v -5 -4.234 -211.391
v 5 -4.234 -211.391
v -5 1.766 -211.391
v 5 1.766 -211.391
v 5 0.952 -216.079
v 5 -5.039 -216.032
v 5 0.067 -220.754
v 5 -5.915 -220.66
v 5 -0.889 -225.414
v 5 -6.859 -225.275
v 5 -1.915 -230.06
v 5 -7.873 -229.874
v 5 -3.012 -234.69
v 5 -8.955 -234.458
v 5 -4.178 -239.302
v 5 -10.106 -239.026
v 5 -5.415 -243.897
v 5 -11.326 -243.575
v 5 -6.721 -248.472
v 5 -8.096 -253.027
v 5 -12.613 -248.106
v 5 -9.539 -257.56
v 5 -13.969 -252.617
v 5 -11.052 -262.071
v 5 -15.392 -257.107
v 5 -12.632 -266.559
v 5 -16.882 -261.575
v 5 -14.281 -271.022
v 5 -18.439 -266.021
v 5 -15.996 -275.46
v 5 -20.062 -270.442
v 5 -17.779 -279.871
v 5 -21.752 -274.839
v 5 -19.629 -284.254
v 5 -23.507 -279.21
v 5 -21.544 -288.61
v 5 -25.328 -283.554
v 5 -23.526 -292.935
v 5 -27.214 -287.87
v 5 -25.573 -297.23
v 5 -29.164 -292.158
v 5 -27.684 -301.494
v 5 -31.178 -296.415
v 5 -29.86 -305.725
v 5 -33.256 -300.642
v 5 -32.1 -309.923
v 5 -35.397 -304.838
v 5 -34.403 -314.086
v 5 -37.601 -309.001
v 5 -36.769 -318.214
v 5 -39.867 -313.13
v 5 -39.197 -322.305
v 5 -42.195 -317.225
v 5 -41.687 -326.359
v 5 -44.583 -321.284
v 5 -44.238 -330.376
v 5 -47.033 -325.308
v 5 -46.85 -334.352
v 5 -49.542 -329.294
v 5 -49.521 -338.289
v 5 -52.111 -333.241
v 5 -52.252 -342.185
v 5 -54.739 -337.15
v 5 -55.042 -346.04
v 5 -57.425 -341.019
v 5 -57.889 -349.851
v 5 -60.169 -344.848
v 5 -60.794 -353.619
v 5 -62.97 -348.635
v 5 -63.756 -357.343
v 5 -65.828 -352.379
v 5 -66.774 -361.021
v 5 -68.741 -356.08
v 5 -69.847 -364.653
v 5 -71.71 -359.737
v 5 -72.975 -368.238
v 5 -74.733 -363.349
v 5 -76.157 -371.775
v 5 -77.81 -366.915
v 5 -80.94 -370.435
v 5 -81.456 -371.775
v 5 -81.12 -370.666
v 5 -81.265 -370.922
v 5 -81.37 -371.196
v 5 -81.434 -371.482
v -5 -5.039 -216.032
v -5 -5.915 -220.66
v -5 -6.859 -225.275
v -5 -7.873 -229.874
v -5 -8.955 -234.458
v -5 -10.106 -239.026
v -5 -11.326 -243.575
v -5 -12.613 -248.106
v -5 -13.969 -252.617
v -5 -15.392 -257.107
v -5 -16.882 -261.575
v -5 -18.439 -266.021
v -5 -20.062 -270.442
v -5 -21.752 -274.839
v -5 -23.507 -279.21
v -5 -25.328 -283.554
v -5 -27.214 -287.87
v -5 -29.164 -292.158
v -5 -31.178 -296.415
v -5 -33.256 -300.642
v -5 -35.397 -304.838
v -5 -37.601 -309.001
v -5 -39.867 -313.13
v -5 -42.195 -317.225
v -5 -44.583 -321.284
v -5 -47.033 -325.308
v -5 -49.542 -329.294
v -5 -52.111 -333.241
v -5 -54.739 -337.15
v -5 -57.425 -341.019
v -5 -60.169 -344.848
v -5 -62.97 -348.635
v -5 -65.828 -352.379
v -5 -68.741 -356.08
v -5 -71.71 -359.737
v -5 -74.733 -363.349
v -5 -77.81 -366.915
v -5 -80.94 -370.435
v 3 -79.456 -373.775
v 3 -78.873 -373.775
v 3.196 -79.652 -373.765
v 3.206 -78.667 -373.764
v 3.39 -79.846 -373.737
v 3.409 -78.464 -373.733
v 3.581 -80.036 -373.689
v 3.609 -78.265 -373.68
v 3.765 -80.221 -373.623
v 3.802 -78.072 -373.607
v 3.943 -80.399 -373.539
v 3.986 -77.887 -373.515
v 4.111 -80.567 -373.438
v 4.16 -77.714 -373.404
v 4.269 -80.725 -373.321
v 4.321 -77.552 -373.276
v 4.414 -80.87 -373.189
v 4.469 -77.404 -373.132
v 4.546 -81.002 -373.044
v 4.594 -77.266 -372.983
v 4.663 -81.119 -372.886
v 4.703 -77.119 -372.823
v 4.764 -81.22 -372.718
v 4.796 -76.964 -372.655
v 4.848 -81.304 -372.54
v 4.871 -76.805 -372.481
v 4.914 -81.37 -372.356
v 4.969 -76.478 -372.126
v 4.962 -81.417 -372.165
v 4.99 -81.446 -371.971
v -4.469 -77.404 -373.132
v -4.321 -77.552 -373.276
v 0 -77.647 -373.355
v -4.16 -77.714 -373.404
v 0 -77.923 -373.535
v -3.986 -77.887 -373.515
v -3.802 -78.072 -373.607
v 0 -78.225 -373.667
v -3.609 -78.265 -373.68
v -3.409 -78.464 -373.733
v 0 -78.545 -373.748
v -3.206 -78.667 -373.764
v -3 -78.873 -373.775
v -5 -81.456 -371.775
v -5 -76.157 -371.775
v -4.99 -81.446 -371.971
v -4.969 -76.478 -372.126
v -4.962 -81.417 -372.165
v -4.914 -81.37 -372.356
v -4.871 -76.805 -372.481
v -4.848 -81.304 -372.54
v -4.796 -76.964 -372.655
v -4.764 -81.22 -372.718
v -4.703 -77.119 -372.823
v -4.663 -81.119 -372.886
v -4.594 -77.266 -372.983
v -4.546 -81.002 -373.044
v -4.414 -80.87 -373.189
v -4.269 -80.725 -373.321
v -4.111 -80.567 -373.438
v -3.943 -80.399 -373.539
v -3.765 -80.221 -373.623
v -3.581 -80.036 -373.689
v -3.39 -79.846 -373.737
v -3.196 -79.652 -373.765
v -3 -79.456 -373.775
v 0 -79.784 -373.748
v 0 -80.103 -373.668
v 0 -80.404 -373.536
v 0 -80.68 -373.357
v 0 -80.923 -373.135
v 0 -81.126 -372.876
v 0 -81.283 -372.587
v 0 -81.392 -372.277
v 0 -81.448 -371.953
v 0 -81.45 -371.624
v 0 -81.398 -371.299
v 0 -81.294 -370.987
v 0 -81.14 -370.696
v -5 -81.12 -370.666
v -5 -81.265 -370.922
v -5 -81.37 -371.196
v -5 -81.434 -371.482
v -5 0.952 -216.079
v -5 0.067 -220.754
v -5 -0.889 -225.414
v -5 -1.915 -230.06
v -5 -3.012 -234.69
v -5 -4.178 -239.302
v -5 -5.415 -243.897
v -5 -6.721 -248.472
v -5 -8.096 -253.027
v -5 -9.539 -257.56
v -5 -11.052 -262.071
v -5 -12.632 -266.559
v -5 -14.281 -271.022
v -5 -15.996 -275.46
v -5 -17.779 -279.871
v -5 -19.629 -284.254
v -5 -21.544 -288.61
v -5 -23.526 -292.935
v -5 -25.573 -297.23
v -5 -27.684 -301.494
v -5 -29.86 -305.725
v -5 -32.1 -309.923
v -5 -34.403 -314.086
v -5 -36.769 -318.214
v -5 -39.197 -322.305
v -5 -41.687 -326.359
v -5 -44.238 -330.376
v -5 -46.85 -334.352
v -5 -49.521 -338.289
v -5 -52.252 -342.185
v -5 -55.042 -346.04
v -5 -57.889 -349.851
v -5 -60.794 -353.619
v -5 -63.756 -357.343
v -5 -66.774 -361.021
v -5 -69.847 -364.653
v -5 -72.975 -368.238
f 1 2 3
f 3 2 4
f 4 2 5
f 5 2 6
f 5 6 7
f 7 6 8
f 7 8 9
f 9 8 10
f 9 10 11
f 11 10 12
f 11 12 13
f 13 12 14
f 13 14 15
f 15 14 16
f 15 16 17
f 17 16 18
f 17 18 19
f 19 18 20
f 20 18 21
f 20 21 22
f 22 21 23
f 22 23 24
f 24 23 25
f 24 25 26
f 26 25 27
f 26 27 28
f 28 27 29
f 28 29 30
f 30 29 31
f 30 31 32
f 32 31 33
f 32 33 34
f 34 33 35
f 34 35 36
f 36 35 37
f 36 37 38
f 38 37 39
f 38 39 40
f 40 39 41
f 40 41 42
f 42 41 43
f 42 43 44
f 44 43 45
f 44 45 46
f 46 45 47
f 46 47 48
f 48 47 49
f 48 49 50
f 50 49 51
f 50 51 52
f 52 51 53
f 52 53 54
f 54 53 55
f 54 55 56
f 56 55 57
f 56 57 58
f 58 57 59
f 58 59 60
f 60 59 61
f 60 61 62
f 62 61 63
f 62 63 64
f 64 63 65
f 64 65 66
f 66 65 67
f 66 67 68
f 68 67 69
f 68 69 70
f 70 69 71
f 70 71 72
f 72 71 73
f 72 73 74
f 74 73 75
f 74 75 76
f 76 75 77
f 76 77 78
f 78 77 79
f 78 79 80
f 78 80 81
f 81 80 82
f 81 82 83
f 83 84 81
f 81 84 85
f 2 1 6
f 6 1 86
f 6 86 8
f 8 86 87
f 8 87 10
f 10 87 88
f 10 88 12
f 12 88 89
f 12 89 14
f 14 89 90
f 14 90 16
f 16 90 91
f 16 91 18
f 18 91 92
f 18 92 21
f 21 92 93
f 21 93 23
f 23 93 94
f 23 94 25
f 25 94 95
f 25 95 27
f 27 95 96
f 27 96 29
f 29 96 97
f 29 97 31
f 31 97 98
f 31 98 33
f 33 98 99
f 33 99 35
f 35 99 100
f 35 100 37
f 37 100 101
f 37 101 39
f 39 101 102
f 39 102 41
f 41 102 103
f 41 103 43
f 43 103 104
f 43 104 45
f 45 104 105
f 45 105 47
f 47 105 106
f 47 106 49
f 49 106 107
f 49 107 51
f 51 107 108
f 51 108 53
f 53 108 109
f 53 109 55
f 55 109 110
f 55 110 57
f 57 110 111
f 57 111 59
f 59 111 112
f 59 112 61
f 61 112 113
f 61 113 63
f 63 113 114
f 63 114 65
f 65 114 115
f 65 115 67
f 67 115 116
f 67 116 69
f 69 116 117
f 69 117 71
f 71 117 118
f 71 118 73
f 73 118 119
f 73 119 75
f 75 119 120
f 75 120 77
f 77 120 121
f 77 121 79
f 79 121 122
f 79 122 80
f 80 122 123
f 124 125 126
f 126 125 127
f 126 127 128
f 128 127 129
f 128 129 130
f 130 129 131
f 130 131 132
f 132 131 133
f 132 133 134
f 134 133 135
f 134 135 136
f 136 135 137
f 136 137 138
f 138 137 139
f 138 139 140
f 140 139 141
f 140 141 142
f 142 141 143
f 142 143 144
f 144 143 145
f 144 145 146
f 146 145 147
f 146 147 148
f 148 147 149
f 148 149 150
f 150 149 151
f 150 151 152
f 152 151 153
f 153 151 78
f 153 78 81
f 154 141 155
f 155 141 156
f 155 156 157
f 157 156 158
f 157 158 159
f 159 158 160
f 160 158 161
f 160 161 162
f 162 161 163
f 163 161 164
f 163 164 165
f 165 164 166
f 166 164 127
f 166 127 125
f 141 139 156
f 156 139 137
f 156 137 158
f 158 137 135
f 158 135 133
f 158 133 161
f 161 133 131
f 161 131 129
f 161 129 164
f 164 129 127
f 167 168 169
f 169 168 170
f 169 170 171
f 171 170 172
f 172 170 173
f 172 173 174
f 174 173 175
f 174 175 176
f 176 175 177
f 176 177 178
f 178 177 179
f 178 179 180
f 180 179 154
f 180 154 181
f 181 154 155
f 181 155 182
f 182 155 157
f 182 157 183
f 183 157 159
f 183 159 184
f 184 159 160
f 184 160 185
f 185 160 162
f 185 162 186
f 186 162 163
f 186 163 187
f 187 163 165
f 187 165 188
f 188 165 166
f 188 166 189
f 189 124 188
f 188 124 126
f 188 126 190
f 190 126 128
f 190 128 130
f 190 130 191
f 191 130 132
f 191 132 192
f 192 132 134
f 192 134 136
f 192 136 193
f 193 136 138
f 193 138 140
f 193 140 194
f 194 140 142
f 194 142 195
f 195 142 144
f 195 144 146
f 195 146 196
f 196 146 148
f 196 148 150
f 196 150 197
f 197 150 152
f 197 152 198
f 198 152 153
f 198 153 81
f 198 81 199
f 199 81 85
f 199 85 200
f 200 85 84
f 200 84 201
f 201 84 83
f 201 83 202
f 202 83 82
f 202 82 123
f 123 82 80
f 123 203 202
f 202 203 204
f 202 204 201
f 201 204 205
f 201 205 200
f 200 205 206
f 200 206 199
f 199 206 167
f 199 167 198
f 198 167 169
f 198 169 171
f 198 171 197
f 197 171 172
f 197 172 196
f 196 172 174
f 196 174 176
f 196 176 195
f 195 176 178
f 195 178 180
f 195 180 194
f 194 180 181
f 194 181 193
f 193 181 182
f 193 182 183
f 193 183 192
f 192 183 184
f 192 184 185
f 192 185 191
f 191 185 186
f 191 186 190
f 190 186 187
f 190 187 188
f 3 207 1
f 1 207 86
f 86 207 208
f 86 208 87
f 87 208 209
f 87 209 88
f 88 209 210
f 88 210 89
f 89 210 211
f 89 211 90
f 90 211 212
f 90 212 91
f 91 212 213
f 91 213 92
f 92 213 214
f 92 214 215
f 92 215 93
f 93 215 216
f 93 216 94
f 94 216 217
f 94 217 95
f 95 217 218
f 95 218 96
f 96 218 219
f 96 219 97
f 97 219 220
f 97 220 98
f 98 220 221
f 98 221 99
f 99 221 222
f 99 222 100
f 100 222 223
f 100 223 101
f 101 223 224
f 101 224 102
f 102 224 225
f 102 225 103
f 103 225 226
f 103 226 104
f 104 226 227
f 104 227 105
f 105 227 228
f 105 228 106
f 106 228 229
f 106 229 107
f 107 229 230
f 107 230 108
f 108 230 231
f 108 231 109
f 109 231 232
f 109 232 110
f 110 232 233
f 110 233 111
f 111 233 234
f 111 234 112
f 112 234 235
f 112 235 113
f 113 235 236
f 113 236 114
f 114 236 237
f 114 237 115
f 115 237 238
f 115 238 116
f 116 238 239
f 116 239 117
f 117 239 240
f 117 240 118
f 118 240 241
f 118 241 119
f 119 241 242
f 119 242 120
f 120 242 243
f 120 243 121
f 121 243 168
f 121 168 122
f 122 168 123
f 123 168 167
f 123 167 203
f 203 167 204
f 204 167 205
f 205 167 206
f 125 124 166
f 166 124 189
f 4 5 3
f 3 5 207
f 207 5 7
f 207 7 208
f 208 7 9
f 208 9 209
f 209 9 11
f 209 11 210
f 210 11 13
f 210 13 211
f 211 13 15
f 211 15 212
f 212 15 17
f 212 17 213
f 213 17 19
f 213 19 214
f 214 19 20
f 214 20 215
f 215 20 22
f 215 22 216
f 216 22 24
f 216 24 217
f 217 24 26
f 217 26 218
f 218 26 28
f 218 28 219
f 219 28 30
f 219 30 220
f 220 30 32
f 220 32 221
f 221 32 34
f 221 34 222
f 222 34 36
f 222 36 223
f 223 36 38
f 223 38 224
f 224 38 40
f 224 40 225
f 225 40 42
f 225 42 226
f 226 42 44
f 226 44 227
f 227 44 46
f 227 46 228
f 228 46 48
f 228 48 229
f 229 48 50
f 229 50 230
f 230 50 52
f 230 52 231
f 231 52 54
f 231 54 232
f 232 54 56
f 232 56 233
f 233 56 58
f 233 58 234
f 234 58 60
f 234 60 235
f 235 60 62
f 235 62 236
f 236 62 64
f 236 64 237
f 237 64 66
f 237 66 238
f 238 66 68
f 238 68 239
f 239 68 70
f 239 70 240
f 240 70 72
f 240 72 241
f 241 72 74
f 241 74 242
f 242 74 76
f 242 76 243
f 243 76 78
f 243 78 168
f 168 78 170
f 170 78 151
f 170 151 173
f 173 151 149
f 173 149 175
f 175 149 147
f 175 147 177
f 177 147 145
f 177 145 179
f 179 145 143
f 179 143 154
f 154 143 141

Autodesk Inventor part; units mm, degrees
ref_plane "YZ Plane" through (0, 0, 0) normal (1, 0, 0) x (0, 1, 0)
ref_plane "XZ Plane" through (0, 0, 0) normal (0, 1, 0) x (-1, 0, 0)
ref_plane "XY Plane" through (0, 0, 0) normal (0, 0, 1) x (1, 0, 0)
sketch "Sketch1" plane through (0, 0, 0) normal (0, 1, 0) x (-1, 0, 0)
  line L0 (0, 0) -> (0, -160) construction
  line L1 (5, 0) -> (5, -160)
  line L2 (-5, -160) -> (-5, 0)
  arc A0 (5, 0) -> (-5, 0) centre (0, 0) ccw
  arc A1 (-5, -160) -> (5, -160) centre (0, -160) ccw
  circle A2 centre (0, 0) radius 1.65
  line L3 (0, -30) -> (0, -120) construction
  line L4 (1.65, -30) -> (1.65, -120)
  line L5 (-1.65, -120) -> (-1.65, -30)
  arc A3 (1.65, -30) -> (-1.65, -30) centre (0, -30) ccw
  arc A4 (-1.65, -120) -> (1.65, -120) centre (0, -120) ccw
  point P0 (0, -80)
  point P1 (0, -75)
  dimension "d0" = 160
  dimension "d1" = 10
  dimension "d2" = 3.3
  dimension "d3" = 30
  dimension "d5" = 120
  dimension "d6" = 3.3
extrude "Extrusion1" add sketch "Sketch1" along normal blind 6
sketch "Sketch2" plane through (5, 0, 0) normal (1, 0, 0) x (0, 0, -1)
  line L0 (160, 0) -> (160, 6) projected
  line L1 (0, 0) -> (160, 0) projected
  line L2 (160, 0) -> (160, 6) projected
  line L3 (0, 6) -> (160, 6) projected
  line L4 (0, 0) -> (0, 6) projected
  line L5 (160, 0) -> (160, 0) projected
  line L6 (160, 0) -> (160, 6) projected
  line L7 (160, 6) -> (160, 6) projected
  line L8 (160, 0) -> (160, 6) projected
  line L9 (160, 0) -> (0, 0) projected
  arc A0 (373.775, -84) -> (160, 0) centre (160, -314.0223) ccw
  line L10 (160, 6) -> (0, 6) projected
  arc A1 (373.775, -78) -> (160, 6) centre (160, -308.0223) ccw
  line L11 (373.775, -78) -> (373.775, -84)
  line L12 (0, 0) -> (160, 0) projected
  dimension "d9" = 6
  dimension "d10" = 373.775
  dimension "d11" = 90
extrude "Extrusion2" add sketch "Sketch2" against normal blind 10 contours L0 A1 L11 A0
fillet "Fillet1" radius 2 4 edges at (0, -78, -373.775) (5, -81, -373.775) (-5, -81, -373.775) (0, -84, -373.775)
sketch "Sketch3" plane through (0, 6, 0) normal (0, 1, 0) x (1, 0, 0)
  line L0 (36.6774, -16.9321) -> (-64.8889, -16.9321)
  line L1 (-64.8889, -16.9321) -> (-64.8889, 211.3912)
  line L2 (-64.8889, 211.3912) -> (36.6774, 211.3912)
  line L3 (36.6774, 211.3912) -> (36.6774, -16.9321)
  line L4 (-92.1247, 397.3107) -> (101.238, 397.3107)
  line L5 (101.238, 397.3107) -> (101.238, -55.9315)
  line L6 (101.238, -55.9315) -> (-92.1247, -55.9315)
  line L7 (-92.1247, -55.9315) -> (-92.1247, 397.3107)
  point P0 (0, 0)
extrude "Extrusion3" cut sketch "Sketch3" against normal blind 100 contours L0 L1 L2 L3
properties part number "Part_11_p1"
